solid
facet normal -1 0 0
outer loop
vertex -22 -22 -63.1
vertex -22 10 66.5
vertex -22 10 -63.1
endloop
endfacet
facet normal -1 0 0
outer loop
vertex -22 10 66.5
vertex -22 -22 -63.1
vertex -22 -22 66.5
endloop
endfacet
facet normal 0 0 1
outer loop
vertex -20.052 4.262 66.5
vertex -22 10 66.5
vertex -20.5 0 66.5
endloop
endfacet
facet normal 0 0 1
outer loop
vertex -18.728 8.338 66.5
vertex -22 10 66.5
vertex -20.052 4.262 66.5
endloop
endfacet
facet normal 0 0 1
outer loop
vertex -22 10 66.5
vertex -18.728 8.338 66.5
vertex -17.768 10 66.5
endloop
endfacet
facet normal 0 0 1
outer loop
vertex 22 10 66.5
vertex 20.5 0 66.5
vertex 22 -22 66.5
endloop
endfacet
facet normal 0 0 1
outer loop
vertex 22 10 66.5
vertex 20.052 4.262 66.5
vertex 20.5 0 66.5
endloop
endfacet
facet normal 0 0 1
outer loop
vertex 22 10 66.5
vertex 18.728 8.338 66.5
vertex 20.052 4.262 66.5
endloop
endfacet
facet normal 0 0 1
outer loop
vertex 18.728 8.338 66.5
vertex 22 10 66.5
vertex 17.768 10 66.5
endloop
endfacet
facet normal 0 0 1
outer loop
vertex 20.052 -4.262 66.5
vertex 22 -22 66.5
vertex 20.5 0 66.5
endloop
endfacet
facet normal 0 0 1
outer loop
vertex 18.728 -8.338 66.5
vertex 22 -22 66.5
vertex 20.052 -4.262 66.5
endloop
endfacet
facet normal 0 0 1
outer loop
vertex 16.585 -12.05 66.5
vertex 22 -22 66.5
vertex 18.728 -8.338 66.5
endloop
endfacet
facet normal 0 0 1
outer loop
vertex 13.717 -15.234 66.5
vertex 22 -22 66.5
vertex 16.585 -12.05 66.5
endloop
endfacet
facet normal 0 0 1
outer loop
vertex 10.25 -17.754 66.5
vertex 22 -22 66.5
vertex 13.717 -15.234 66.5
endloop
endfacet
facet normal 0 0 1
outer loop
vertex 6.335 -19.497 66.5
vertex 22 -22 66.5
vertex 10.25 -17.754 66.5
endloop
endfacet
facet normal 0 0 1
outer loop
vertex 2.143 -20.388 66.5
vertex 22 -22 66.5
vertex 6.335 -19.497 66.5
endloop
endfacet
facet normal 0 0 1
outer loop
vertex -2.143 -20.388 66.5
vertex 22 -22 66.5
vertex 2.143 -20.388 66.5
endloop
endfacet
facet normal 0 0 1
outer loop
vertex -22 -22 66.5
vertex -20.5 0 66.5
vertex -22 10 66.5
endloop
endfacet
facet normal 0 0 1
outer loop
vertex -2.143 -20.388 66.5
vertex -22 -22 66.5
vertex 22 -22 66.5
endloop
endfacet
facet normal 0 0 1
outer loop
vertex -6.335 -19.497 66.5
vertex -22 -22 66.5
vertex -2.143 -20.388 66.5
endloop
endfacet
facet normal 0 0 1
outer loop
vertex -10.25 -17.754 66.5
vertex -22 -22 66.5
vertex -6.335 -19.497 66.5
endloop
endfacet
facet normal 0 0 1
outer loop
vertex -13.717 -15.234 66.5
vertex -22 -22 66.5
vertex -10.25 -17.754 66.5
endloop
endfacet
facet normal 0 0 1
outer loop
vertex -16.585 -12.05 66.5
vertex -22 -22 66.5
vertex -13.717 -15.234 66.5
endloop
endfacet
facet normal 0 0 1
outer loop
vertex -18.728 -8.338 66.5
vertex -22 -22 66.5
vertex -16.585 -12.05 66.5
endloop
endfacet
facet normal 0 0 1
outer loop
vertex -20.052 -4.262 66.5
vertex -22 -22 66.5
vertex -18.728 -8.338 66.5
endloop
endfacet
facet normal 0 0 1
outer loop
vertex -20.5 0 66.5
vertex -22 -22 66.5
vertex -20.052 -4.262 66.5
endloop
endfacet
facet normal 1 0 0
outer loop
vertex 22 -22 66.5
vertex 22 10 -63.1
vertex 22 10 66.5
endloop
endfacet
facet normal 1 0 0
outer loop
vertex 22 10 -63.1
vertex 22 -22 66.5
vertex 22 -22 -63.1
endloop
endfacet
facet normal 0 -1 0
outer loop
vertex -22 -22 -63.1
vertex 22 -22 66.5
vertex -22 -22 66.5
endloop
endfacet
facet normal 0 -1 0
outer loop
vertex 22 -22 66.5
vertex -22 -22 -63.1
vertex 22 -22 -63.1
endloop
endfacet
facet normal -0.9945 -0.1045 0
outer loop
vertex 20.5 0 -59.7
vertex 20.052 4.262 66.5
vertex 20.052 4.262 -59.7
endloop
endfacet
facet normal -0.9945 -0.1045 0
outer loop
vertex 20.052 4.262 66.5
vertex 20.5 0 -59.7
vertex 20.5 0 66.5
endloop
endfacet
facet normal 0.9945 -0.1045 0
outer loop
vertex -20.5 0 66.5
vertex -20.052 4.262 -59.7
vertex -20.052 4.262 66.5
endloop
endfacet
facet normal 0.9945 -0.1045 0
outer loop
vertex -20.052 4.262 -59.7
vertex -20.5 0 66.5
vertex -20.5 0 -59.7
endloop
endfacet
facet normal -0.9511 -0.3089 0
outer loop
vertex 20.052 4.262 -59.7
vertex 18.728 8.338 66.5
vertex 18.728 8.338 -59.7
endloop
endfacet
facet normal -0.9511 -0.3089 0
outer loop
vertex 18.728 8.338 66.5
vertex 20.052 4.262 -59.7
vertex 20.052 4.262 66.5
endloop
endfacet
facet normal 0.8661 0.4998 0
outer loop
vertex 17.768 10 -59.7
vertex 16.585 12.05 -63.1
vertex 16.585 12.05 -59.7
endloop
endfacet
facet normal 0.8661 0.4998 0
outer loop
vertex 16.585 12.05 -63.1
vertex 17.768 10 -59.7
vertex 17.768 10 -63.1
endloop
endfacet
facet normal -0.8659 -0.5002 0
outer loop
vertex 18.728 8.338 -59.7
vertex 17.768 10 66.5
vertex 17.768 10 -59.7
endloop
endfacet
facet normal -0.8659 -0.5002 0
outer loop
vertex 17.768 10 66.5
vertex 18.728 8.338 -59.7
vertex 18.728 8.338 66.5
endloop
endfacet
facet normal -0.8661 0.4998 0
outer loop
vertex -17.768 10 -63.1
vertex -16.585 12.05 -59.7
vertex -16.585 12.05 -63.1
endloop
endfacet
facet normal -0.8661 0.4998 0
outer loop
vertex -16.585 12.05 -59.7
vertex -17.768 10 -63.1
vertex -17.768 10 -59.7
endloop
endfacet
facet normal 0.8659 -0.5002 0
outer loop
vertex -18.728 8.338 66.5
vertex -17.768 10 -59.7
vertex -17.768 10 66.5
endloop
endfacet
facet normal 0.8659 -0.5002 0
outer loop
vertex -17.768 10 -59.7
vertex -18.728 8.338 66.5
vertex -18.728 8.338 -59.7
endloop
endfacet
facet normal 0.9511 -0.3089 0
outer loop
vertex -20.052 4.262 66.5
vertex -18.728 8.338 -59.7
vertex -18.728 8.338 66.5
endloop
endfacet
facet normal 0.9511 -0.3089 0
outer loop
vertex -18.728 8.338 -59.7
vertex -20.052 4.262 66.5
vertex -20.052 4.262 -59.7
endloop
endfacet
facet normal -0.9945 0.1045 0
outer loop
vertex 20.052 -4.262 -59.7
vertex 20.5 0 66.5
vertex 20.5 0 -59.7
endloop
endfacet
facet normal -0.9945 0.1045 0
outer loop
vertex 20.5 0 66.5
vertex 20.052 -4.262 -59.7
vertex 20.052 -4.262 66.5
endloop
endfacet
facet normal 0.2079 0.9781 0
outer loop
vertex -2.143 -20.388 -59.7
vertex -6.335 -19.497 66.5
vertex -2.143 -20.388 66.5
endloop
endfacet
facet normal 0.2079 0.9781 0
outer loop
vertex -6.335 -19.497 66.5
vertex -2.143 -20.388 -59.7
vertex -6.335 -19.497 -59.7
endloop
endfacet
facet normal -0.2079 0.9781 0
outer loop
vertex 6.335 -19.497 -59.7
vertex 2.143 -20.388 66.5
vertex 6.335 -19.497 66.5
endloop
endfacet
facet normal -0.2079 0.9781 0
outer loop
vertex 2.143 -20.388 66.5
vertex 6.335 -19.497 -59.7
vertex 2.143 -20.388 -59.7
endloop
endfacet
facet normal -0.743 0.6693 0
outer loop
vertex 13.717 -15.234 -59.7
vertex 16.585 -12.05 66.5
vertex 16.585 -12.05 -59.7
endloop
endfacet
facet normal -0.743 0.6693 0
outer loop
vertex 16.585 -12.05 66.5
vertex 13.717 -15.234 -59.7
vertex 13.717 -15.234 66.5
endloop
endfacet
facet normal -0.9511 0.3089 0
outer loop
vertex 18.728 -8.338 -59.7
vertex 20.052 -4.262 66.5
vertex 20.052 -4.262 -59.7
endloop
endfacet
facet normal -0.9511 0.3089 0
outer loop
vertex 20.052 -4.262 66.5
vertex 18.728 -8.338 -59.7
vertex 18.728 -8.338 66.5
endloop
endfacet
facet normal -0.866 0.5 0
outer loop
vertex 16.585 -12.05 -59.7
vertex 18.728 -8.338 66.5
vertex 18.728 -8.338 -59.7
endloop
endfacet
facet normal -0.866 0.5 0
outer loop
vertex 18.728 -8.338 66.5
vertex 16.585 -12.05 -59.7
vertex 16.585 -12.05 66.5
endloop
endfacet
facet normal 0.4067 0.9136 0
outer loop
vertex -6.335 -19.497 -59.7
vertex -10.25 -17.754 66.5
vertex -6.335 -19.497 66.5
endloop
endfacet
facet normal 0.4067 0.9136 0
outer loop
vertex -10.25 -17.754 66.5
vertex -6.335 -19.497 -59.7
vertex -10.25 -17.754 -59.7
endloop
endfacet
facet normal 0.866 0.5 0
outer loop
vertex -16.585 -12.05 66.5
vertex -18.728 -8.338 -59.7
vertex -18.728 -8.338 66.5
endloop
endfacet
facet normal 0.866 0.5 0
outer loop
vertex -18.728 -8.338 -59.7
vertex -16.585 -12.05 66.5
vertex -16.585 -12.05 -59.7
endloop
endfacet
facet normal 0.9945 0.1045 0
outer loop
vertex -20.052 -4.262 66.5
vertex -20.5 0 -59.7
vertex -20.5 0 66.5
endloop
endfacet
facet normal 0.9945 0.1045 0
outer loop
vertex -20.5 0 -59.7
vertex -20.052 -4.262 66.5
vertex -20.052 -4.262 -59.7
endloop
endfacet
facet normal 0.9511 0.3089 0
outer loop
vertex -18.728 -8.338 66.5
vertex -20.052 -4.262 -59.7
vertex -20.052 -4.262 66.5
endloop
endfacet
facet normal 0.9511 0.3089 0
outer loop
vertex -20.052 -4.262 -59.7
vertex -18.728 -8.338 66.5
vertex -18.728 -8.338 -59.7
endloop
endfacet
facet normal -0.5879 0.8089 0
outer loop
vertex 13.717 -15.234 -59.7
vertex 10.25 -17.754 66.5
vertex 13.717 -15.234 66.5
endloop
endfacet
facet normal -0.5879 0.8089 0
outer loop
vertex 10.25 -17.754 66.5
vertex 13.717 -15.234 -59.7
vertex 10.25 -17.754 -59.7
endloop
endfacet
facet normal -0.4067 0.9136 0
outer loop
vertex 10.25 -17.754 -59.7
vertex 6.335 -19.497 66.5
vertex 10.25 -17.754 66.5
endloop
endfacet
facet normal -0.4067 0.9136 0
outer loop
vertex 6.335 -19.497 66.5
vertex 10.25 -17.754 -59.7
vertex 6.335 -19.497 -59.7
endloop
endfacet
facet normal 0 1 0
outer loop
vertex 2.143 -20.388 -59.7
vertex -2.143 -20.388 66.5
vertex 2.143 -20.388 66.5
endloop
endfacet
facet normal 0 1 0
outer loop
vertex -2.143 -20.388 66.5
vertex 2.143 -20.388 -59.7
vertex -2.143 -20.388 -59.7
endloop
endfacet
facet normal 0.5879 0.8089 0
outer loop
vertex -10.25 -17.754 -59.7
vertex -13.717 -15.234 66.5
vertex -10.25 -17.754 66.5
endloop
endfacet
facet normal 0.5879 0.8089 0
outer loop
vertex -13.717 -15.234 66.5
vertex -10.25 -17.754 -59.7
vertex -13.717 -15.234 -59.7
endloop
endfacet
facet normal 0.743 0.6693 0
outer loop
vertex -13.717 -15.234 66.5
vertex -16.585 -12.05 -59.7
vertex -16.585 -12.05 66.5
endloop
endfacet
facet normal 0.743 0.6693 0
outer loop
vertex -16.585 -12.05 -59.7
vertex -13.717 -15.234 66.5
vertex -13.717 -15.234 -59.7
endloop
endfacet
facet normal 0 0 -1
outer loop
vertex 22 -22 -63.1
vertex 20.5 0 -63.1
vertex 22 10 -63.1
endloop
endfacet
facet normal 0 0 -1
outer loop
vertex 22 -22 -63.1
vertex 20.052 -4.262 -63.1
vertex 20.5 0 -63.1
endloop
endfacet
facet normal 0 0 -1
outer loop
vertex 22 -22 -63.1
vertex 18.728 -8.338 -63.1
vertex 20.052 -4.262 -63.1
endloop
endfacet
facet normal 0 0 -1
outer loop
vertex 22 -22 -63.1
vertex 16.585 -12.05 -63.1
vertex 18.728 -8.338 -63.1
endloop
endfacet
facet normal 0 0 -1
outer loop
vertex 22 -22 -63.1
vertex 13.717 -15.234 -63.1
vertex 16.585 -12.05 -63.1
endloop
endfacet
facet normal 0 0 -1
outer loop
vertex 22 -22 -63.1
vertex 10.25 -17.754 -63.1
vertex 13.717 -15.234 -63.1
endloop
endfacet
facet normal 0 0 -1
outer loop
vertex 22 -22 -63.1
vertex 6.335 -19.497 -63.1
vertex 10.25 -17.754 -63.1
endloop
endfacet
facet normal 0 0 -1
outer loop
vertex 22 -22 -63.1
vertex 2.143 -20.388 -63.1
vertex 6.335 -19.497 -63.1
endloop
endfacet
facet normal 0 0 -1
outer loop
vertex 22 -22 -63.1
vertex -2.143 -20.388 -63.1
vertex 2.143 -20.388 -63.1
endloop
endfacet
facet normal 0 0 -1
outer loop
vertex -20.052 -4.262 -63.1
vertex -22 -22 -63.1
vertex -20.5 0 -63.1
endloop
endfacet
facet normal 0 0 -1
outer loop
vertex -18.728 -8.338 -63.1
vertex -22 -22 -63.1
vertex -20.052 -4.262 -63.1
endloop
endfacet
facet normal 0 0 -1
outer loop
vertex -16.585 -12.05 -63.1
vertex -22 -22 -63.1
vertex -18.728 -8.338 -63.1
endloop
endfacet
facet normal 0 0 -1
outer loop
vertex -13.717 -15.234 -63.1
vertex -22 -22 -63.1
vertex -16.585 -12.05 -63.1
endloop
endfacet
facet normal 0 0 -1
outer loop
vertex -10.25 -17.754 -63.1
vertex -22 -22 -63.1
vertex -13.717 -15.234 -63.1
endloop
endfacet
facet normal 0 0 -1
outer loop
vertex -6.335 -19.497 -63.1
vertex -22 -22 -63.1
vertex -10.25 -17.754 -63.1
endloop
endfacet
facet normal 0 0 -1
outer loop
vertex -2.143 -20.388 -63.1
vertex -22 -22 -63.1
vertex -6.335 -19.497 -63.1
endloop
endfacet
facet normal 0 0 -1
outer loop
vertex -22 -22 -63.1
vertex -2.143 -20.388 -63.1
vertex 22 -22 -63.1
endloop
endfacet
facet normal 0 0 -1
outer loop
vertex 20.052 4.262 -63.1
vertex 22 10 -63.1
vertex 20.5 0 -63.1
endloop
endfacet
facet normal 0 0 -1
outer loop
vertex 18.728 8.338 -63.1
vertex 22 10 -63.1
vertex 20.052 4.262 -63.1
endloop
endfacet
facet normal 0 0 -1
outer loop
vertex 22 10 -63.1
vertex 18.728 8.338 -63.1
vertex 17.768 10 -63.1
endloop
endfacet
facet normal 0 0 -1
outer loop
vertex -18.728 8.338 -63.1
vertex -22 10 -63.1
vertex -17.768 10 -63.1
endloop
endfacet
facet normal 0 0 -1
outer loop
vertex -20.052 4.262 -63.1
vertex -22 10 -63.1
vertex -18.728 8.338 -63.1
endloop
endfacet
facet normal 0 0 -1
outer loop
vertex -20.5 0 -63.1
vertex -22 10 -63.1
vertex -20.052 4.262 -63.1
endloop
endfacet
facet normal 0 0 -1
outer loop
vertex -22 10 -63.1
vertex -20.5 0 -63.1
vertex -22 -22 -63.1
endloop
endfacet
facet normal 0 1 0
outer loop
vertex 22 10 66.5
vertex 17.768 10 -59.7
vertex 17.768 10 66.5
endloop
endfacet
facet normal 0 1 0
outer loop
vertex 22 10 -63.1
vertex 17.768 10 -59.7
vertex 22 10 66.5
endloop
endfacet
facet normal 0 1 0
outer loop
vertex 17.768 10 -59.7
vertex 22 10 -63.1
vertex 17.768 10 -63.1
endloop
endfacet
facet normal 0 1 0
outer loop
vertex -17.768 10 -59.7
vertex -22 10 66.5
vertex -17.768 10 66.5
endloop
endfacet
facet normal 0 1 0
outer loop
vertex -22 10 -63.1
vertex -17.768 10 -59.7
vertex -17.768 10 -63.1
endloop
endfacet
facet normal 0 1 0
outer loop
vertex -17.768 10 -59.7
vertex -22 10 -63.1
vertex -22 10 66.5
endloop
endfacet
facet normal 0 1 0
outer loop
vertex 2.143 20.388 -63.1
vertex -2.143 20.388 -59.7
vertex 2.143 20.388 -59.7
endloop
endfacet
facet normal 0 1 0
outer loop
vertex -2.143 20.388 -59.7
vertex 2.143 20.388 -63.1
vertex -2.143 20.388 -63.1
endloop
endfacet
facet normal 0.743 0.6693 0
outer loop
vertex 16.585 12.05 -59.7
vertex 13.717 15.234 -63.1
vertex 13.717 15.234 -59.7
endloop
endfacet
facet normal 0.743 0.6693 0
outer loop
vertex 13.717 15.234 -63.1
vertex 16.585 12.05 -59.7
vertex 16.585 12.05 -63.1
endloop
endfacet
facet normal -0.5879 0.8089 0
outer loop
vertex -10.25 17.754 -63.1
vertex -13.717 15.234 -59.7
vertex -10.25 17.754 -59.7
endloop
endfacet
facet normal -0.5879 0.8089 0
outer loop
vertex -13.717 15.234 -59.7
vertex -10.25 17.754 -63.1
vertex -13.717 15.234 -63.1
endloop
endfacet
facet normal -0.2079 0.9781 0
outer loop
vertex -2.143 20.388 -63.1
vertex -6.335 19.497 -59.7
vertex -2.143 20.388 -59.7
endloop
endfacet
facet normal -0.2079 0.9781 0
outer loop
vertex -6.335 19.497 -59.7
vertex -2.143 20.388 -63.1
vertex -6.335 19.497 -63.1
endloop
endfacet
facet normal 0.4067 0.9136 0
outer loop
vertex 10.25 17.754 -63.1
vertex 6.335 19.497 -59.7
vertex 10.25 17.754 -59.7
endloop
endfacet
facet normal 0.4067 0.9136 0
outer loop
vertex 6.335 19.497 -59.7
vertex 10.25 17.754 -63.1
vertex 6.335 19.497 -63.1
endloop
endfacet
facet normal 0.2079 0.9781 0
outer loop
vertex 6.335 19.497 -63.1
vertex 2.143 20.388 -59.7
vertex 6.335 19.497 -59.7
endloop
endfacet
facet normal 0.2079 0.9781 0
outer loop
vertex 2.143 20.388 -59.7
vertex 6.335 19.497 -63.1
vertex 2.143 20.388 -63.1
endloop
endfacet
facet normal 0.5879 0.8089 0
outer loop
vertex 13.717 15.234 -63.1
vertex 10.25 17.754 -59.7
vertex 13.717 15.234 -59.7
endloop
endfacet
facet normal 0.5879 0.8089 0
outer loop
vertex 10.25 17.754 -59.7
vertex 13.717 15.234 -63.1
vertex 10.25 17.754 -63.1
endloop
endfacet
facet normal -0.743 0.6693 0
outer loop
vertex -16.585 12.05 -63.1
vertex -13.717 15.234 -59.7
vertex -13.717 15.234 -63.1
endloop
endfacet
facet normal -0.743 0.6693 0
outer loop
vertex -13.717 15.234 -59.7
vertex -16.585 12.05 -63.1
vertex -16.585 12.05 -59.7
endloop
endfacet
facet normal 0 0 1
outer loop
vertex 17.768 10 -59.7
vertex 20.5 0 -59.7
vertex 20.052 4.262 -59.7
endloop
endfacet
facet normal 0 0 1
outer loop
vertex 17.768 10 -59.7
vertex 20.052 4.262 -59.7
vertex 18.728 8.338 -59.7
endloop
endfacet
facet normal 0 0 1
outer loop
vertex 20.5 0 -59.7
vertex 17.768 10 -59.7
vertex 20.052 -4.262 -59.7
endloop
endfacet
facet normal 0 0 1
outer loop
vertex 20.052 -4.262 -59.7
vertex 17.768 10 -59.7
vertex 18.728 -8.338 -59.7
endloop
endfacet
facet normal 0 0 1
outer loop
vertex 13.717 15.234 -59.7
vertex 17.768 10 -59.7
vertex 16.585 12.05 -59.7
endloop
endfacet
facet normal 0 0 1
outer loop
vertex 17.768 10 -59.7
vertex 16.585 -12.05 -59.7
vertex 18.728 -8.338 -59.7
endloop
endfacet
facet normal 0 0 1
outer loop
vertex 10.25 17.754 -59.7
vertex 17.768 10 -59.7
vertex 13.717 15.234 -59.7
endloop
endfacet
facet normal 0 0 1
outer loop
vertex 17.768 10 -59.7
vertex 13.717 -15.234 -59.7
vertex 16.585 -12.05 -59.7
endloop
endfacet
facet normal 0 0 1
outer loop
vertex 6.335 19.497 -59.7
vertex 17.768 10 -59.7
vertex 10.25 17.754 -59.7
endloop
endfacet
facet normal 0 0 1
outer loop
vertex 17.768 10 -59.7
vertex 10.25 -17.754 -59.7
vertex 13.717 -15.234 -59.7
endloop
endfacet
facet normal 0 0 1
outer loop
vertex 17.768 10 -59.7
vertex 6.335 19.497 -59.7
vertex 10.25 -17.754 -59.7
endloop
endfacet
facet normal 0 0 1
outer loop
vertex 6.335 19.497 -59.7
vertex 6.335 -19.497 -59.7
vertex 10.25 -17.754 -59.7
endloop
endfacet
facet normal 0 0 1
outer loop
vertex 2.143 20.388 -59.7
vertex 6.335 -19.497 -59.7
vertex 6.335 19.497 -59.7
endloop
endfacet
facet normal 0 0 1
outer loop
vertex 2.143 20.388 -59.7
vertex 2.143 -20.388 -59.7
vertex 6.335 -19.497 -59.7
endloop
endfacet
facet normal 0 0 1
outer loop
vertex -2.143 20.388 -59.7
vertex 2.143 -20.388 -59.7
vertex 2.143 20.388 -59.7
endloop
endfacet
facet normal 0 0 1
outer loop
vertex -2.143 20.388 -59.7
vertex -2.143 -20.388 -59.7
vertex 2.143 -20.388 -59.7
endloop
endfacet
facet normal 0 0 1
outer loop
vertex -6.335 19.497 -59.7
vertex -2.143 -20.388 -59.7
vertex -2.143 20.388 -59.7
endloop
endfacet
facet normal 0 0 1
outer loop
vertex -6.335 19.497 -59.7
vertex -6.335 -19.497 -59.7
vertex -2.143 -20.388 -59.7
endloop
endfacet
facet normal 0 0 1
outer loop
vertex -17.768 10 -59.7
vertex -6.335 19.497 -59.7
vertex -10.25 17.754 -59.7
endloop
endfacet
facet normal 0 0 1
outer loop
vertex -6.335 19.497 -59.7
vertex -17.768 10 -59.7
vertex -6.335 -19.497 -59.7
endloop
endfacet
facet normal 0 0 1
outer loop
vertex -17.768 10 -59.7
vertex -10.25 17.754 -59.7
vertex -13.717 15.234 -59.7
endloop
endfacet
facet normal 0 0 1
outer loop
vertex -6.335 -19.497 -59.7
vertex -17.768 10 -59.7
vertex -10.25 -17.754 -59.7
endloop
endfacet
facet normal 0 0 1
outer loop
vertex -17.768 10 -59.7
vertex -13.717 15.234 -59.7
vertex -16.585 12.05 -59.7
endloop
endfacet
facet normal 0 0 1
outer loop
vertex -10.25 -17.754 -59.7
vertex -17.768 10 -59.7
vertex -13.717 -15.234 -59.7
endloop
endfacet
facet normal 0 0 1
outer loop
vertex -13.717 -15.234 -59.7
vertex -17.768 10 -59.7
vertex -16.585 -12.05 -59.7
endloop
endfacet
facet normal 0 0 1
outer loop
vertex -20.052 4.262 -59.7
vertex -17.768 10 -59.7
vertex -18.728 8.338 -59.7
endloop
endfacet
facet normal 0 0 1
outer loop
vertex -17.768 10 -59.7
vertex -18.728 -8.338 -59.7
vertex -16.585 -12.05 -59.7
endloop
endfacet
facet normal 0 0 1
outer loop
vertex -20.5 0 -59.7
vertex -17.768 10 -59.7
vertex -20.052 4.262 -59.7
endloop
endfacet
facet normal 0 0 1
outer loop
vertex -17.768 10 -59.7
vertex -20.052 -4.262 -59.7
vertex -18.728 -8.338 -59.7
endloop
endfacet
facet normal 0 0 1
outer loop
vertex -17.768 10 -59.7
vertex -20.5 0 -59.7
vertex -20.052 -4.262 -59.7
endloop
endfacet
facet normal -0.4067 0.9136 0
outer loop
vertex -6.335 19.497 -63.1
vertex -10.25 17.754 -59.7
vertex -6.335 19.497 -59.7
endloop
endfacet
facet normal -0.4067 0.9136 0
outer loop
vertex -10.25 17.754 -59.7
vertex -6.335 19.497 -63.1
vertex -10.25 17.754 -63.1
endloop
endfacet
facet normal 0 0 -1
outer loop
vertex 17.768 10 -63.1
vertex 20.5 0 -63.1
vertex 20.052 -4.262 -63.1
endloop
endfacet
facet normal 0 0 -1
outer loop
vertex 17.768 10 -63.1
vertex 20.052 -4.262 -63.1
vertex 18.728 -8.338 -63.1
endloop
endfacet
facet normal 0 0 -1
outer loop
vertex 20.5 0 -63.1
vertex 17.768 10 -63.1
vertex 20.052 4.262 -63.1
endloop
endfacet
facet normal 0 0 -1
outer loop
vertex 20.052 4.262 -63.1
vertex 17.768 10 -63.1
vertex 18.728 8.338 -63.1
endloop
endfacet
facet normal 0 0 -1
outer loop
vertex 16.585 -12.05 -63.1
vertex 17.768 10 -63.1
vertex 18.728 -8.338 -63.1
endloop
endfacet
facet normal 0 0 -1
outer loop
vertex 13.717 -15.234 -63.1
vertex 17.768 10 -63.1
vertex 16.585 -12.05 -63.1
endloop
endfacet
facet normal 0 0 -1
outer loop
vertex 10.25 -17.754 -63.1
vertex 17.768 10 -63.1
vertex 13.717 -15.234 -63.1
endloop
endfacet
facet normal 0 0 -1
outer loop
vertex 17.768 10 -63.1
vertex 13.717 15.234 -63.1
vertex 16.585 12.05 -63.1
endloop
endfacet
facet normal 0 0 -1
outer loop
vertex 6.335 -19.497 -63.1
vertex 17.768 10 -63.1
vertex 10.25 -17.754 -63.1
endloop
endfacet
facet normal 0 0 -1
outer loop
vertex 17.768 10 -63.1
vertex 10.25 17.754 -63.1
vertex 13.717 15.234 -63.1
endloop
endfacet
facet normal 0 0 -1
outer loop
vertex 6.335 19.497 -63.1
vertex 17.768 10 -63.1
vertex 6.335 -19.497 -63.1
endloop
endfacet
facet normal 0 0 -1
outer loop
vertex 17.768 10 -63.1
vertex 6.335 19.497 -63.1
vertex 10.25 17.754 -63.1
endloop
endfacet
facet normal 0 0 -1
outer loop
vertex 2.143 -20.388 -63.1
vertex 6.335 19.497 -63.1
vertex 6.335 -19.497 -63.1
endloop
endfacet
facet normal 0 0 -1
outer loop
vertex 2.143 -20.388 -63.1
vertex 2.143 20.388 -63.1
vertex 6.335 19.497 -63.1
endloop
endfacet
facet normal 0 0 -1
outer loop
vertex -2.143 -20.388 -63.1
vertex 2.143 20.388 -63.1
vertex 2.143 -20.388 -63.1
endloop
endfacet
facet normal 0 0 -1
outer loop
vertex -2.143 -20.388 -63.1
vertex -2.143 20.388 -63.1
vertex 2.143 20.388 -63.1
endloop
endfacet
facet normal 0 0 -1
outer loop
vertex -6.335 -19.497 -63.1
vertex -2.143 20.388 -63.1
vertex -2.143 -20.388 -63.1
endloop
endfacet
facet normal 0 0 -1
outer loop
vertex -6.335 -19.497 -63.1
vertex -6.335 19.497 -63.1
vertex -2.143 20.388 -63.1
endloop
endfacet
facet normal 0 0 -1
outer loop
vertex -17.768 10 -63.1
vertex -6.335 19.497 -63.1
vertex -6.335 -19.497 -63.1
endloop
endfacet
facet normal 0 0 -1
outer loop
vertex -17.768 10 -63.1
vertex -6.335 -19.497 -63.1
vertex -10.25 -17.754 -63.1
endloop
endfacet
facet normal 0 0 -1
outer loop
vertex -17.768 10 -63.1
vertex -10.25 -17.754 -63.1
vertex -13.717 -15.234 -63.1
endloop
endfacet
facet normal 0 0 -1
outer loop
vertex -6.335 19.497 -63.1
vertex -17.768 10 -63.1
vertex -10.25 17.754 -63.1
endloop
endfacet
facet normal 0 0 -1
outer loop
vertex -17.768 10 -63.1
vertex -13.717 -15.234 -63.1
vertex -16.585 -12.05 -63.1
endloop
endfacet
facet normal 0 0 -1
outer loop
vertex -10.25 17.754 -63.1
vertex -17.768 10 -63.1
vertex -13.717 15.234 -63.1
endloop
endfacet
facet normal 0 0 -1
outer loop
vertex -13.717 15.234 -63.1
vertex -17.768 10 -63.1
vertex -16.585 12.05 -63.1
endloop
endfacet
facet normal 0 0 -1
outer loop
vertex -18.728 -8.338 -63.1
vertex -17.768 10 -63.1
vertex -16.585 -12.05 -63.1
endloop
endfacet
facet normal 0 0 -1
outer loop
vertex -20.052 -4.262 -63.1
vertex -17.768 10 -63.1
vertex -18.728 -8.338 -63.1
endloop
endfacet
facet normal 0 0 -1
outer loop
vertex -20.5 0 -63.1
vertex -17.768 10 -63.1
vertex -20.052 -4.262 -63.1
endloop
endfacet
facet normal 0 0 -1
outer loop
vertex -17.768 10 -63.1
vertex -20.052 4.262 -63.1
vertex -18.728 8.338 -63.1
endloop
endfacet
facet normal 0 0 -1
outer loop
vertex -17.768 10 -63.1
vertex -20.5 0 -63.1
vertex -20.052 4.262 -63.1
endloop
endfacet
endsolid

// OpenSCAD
difference()
{
////translate([0,0,20.4]) 
    {
difference() 
{
    cube([44,44,133],center=true);
    color("green") 
        cylinder(d=41, h=133, center=true); 

}
    translate([0,0,-64.8])
    color("blue")
        cube([44,44,3.4],center=true);
}

    translate([0,21,0])
        color("red")
            cube([44,22,133],center=true);
}
    translate([0,0,-61.4]) 
    color("deeppink") 
        cylinder(d=41, h=3.4, center=true); 
